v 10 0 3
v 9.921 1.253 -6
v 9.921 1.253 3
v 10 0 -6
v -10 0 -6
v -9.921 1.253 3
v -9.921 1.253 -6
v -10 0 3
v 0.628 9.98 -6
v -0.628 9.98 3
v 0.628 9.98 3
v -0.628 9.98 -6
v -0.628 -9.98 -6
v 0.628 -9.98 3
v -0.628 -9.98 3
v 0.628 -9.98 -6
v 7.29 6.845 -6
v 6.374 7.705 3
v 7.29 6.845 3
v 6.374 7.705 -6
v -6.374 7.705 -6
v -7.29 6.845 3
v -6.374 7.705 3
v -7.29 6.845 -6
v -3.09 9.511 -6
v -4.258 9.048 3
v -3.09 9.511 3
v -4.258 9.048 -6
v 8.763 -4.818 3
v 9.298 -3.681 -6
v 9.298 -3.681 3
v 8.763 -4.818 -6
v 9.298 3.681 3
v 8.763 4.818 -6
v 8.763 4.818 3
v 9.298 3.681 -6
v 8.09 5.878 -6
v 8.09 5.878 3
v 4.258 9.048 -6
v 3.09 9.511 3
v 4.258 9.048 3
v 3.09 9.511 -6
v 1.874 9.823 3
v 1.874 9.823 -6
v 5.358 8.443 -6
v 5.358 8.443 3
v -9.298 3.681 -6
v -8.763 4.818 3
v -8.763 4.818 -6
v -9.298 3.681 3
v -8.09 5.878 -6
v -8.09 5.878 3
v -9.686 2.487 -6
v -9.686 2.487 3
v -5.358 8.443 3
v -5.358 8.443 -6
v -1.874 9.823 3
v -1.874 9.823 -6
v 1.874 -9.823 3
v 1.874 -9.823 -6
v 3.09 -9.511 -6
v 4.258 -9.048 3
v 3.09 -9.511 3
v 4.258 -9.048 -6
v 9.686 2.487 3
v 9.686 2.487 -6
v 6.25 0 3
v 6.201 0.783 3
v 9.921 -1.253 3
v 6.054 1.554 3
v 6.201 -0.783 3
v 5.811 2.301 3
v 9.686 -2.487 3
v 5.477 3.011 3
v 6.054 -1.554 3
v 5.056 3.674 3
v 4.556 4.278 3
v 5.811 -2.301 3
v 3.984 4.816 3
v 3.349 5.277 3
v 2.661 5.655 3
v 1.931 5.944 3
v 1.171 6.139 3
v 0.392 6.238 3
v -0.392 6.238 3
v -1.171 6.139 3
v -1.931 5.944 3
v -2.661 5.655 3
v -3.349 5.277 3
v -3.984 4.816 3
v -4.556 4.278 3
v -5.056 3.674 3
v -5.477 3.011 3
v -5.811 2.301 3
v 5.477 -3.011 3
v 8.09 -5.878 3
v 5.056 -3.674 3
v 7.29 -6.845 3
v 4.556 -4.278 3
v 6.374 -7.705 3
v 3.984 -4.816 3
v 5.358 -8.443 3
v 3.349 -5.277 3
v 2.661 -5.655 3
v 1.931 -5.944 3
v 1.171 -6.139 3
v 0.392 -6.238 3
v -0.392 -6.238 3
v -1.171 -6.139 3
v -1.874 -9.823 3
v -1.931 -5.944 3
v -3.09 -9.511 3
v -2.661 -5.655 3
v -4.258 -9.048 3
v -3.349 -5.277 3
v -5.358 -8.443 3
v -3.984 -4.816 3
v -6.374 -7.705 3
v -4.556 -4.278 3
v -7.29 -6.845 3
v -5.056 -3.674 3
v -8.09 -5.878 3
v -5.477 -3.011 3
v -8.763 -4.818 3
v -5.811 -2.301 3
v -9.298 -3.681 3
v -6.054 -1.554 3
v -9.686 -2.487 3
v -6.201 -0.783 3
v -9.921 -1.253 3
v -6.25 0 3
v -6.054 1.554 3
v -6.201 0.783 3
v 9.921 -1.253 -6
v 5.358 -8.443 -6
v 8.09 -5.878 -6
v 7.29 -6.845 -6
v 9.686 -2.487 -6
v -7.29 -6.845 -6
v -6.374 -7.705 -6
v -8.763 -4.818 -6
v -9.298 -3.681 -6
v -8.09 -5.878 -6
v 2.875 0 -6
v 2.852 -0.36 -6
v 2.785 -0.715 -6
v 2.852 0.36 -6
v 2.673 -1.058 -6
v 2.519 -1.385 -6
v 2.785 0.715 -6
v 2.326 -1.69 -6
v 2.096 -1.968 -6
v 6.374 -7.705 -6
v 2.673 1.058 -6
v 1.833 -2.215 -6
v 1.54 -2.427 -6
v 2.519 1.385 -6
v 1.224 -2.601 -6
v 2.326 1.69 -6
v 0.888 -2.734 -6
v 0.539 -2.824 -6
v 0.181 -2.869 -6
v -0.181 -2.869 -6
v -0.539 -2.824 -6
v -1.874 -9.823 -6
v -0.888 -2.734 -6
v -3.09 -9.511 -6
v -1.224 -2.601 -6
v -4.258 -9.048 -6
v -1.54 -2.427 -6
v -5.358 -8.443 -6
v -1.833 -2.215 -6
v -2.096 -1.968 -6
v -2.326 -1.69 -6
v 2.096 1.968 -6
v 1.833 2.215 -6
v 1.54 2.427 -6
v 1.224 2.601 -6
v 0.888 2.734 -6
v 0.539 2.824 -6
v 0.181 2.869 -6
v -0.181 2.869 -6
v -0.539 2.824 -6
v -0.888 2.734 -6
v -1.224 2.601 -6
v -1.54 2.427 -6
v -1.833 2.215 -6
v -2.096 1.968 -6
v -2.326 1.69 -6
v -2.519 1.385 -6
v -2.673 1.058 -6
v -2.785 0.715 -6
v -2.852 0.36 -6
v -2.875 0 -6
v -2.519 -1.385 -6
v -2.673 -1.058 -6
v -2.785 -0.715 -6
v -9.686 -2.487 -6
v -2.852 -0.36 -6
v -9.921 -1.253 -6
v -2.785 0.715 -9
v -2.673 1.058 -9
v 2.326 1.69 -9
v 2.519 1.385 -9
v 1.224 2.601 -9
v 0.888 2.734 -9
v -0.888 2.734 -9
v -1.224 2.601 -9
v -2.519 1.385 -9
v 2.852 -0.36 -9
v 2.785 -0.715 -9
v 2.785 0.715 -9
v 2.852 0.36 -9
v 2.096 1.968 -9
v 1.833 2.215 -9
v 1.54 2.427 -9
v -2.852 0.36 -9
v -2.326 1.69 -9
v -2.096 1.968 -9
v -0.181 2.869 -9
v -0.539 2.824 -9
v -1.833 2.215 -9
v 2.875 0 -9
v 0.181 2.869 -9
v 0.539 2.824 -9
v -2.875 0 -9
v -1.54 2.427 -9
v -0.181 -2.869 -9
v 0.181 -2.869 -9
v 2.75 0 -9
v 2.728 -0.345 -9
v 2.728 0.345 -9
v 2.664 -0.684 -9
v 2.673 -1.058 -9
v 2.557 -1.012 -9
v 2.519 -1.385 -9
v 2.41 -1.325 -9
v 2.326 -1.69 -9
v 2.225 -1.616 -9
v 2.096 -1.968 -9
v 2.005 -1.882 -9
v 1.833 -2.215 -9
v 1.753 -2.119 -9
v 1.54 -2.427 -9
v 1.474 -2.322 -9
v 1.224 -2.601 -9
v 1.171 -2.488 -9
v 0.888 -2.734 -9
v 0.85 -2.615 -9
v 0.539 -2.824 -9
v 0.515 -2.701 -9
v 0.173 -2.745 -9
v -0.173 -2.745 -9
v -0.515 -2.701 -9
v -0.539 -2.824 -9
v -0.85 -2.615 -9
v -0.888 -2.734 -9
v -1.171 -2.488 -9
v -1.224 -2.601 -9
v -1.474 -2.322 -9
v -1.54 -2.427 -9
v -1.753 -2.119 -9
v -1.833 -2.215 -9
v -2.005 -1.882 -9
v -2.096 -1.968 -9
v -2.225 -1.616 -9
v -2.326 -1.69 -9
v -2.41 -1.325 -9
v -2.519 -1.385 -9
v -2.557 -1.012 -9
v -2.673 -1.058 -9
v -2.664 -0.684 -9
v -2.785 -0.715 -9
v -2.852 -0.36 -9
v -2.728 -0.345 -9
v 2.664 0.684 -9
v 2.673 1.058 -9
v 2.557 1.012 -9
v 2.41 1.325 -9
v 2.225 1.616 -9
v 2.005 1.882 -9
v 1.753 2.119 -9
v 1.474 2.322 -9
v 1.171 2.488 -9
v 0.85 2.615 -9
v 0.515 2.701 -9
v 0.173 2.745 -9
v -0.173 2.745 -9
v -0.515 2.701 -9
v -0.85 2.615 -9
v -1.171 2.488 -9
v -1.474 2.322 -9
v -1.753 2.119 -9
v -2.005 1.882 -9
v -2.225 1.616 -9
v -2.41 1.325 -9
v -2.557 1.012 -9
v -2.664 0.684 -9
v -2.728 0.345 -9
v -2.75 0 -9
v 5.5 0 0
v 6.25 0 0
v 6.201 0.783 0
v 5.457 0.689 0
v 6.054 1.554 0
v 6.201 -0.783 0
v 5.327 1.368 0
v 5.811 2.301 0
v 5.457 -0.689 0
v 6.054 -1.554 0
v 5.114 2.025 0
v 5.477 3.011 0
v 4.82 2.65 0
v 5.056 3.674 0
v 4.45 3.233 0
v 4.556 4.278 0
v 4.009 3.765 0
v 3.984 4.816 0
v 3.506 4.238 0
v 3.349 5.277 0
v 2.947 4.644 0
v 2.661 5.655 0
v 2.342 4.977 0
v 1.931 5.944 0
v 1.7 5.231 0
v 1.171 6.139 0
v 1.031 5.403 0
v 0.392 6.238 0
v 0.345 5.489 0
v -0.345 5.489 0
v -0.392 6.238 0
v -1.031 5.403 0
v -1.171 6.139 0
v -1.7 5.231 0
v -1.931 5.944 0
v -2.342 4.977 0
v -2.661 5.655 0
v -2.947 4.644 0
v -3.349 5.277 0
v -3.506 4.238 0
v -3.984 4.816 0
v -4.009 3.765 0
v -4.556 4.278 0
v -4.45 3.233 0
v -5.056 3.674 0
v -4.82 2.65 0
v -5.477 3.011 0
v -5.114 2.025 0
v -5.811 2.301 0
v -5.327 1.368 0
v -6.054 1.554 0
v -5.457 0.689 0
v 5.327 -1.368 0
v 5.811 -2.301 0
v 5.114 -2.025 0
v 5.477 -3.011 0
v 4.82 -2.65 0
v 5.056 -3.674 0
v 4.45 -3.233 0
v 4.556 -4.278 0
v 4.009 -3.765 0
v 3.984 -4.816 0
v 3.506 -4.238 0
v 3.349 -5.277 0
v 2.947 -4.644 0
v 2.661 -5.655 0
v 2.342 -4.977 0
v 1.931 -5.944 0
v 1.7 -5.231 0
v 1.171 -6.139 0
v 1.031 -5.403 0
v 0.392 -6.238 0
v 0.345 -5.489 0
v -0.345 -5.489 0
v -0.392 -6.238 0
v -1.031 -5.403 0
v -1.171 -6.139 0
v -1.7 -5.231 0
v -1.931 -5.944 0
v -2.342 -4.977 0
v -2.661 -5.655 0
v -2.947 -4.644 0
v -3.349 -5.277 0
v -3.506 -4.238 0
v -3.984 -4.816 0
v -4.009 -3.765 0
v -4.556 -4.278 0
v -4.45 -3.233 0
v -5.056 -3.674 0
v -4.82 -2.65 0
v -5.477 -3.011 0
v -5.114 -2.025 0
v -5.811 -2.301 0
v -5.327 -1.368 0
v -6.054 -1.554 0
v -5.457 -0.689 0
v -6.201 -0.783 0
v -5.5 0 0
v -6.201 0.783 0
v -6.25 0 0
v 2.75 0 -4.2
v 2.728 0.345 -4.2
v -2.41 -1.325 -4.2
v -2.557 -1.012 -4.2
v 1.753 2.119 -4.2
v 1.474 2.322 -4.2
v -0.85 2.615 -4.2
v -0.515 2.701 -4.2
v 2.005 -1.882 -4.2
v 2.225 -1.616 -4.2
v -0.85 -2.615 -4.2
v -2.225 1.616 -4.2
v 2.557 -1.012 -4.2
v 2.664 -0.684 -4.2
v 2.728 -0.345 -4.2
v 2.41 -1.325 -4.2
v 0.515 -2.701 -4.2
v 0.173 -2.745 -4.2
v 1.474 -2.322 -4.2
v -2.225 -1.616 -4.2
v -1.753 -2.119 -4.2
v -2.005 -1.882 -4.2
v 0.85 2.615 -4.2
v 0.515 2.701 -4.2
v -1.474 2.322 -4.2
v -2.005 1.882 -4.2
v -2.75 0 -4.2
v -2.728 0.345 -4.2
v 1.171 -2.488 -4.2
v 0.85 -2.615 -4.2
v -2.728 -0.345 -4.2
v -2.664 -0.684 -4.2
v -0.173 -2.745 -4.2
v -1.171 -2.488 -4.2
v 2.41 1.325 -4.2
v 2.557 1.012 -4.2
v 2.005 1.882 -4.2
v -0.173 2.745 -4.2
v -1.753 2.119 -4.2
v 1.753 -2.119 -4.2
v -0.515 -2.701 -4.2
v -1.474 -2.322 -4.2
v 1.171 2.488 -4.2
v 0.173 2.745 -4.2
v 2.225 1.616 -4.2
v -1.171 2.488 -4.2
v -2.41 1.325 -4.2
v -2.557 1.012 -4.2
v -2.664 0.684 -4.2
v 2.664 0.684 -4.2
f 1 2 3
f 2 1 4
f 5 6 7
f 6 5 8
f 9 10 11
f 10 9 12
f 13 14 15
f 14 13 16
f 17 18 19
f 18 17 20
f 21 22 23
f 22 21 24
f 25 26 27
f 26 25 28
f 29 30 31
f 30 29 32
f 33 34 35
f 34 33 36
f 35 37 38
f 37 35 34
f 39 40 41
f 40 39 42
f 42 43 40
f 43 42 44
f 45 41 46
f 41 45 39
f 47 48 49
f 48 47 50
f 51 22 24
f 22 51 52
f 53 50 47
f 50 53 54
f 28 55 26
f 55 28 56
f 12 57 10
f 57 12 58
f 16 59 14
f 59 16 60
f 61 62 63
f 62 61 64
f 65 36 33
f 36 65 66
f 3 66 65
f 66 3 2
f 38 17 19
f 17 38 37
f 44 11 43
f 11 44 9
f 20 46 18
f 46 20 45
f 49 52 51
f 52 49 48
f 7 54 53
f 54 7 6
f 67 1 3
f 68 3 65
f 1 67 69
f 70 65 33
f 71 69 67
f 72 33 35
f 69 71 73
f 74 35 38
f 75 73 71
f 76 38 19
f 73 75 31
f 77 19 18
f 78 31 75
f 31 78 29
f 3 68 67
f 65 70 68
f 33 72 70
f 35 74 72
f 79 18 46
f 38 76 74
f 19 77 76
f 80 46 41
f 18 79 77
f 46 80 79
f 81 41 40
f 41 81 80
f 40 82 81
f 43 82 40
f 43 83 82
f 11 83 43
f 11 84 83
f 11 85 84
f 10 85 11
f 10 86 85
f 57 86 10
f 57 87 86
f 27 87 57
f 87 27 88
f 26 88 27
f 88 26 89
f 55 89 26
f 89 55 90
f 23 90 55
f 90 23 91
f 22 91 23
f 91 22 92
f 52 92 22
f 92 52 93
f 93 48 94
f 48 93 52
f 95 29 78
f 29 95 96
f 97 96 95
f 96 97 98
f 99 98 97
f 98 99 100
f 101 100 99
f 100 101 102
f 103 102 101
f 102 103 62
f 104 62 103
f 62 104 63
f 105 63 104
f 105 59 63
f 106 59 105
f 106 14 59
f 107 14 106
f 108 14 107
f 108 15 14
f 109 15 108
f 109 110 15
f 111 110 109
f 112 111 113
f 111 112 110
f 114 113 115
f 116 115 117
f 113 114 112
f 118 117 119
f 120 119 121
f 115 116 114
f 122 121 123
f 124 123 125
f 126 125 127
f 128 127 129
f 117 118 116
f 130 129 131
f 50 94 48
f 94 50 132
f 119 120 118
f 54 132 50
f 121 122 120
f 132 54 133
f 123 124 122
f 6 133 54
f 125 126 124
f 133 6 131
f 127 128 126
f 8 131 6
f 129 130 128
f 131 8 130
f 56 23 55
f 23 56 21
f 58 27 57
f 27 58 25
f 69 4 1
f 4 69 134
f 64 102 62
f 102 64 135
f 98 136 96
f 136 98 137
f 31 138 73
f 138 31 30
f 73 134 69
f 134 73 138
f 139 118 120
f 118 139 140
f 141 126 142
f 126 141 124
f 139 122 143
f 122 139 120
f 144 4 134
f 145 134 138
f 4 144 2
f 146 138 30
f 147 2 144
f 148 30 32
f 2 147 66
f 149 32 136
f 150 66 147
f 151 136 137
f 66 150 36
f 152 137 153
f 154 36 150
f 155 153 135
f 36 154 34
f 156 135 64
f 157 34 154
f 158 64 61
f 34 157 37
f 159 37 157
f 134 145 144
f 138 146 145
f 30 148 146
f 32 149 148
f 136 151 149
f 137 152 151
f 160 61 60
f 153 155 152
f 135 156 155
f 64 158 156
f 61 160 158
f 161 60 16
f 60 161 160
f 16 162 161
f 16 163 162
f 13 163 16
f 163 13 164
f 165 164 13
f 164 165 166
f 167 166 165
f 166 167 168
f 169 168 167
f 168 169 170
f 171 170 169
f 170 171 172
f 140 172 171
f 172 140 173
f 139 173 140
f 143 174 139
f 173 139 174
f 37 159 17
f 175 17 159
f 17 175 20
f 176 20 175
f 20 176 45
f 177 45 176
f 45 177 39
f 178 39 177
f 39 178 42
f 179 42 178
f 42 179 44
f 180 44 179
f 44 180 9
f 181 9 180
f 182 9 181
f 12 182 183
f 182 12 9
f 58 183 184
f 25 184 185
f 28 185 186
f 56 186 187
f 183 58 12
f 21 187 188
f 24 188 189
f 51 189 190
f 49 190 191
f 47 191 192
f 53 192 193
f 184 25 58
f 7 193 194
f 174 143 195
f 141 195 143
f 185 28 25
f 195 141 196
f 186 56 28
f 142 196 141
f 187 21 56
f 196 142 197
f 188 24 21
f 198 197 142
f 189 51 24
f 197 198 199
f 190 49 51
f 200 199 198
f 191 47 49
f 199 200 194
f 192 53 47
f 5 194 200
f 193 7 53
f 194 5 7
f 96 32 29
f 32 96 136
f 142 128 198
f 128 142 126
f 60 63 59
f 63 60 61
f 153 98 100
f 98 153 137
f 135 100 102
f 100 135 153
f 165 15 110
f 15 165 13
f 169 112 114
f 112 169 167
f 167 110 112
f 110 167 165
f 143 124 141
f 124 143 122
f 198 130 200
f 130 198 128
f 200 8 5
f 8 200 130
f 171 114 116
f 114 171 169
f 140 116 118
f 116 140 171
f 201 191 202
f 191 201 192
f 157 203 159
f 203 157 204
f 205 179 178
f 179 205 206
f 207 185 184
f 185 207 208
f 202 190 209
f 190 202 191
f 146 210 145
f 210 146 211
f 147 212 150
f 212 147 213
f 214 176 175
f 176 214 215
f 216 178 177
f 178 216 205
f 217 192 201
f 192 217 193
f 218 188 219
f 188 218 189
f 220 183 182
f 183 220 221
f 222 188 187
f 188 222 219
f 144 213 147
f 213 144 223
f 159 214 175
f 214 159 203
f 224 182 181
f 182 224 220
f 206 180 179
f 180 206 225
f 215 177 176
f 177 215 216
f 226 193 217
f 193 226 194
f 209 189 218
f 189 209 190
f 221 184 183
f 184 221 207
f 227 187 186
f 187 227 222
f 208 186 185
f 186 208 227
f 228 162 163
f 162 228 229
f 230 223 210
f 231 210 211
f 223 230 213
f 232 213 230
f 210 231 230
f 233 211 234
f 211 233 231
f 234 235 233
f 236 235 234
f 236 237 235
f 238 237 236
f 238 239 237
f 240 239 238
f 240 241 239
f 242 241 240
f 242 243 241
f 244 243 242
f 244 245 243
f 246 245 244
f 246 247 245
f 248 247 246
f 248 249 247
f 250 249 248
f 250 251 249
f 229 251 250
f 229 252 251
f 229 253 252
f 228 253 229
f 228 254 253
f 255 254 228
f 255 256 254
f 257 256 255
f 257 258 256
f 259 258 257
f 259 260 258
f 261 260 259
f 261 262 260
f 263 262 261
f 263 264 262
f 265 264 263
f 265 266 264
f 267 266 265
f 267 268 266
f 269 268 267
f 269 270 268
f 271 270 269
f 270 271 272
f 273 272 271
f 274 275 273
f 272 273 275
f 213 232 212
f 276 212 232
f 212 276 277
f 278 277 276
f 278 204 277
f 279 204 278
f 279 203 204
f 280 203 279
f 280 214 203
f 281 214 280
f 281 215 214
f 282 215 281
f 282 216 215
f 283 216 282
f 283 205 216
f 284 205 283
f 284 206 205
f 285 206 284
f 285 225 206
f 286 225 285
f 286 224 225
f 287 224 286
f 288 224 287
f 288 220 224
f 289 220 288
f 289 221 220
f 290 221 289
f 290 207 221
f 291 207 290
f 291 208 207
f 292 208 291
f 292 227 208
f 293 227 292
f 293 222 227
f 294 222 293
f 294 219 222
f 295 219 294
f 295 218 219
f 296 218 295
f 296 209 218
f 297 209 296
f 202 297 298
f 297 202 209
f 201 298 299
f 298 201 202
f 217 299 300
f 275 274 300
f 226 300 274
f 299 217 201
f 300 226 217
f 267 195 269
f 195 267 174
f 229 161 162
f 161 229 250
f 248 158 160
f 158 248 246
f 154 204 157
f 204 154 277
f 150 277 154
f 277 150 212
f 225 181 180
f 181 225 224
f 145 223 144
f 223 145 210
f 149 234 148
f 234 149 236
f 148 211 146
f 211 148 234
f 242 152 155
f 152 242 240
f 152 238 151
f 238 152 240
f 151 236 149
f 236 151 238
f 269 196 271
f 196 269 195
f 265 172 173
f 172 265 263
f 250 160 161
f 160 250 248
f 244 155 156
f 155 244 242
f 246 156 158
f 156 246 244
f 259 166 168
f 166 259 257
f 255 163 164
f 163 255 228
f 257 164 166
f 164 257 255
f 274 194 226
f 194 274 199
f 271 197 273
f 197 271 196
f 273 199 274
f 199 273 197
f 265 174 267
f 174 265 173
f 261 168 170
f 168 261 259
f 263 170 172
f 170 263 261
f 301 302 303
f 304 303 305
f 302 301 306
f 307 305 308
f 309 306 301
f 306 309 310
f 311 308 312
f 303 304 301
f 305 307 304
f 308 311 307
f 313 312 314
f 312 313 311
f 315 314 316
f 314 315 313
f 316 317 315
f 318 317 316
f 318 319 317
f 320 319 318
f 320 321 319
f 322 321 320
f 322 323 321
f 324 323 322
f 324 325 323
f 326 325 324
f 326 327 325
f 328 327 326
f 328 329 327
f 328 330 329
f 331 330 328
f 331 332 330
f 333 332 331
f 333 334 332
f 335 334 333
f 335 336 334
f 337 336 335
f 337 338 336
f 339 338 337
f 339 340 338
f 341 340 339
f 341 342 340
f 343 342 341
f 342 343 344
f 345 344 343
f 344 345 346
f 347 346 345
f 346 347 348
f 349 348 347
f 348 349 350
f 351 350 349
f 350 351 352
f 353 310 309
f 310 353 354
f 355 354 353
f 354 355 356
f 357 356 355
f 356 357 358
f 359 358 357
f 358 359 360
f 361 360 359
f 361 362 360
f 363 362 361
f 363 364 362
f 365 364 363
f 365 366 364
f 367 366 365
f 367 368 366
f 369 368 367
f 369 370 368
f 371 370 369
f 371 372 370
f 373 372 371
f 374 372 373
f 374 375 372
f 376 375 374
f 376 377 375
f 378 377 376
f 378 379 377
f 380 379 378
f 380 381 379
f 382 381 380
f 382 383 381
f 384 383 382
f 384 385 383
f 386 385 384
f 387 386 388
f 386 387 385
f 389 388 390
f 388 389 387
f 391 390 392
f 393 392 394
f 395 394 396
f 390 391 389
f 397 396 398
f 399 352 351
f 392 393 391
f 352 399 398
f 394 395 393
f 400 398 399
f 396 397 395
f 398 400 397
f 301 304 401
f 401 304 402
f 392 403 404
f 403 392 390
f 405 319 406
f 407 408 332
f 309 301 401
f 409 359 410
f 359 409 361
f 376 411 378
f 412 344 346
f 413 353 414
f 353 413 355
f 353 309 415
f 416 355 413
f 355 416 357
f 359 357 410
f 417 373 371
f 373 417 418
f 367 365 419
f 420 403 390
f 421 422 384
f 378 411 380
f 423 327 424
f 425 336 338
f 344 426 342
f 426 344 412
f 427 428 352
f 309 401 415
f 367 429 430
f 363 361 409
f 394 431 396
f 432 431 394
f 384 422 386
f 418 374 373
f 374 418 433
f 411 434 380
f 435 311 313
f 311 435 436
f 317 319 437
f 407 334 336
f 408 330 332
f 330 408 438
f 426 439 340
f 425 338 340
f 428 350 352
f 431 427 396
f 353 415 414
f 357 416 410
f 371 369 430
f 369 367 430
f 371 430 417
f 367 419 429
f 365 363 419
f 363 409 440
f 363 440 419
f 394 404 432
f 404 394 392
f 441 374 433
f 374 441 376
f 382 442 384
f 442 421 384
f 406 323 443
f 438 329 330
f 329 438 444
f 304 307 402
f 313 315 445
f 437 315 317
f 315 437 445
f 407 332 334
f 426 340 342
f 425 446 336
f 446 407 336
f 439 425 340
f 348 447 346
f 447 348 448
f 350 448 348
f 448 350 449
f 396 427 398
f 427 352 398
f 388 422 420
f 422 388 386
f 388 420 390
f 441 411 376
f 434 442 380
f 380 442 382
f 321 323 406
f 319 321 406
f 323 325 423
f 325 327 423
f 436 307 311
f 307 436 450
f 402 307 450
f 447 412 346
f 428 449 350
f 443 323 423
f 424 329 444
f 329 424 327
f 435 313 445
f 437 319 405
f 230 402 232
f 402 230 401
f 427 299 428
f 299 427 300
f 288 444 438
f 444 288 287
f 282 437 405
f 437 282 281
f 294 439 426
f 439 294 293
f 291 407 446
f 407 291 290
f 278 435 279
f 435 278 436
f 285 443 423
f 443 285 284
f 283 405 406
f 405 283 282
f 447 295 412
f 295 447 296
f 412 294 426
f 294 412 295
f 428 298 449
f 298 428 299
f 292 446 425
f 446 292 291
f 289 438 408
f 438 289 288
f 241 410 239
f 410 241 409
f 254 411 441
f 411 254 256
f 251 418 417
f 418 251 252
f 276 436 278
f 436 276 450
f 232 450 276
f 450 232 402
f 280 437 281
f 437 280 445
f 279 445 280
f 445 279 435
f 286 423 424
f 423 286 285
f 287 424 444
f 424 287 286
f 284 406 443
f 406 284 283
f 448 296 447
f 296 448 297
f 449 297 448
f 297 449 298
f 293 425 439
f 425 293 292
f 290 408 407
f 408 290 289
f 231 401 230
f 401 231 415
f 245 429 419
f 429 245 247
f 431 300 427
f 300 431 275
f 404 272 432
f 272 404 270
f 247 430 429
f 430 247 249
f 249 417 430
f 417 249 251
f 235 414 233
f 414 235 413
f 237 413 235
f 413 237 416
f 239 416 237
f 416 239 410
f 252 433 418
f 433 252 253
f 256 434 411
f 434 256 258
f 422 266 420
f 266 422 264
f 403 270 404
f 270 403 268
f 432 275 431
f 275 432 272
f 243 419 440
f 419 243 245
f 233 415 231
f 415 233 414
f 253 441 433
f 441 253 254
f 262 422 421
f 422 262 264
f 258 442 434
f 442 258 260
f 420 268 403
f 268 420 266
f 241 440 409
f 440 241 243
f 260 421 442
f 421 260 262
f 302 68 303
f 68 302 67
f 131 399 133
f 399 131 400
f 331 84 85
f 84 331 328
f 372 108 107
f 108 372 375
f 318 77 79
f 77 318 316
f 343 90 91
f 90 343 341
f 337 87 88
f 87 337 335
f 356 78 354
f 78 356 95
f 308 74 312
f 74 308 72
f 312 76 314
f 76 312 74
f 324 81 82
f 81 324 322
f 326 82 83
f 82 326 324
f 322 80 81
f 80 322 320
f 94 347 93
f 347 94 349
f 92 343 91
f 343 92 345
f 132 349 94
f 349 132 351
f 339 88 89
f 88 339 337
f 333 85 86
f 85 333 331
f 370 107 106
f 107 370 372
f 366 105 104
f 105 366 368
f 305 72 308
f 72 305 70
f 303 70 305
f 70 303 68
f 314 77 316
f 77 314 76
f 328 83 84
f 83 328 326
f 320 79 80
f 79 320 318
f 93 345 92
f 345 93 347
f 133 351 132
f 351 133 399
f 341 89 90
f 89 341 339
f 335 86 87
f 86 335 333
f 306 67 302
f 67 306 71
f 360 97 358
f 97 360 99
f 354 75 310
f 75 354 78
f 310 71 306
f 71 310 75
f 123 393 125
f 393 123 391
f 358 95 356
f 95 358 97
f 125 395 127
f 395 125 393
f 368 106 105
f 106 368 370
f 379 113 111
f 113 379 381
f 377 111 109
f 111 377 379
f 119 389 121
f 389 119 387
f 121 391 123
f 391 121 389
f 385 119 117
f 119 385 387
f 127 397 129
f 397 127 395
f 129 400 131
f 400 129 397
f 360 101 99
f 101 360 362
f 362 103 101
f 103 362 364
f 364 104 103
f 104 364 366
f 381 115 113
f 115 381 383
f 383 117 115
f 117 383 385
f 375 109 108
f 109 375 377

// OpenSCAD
$fn = 50;


difference() {
	union() {
		translate(v = [0, 0, -6.0000000000]) {
			cylinder(h = 9, r = 10.0000000000);
		}
		#translate(v = [0, 0, -9.0000000000]) {
			cylinder(h = 9, r = 2.8750000000);
		}
	}
	union() {
		translate(v = [0, 0, 0]) {
			rotate(a = [0, 0, 0]) {
				difference() {
					union() {
						translate(v = [0, 0, -9.0000000000]) {
							cylinder(h = 9, r = 2.2500000000);
						}
						translate(v = [0, 0, -4.2000000000]) {
							cylinder(h = 4.2000000000, r1 = 2.7500000000, r2 = 5.5000000000);
						}
						translate(v = [0, 0, -9.0000000000]) {
							cylinder(h = 9, r = 2.7500000000);
						}
						translate(v = [0, 0, -9.0000000000]) {
							cylinder(h = 9, r = 2.2500000000);
						}
					}
					union();
				}
			}
		}
		#cylinder(h = 3, r = 6.2500000000);
	}
}
